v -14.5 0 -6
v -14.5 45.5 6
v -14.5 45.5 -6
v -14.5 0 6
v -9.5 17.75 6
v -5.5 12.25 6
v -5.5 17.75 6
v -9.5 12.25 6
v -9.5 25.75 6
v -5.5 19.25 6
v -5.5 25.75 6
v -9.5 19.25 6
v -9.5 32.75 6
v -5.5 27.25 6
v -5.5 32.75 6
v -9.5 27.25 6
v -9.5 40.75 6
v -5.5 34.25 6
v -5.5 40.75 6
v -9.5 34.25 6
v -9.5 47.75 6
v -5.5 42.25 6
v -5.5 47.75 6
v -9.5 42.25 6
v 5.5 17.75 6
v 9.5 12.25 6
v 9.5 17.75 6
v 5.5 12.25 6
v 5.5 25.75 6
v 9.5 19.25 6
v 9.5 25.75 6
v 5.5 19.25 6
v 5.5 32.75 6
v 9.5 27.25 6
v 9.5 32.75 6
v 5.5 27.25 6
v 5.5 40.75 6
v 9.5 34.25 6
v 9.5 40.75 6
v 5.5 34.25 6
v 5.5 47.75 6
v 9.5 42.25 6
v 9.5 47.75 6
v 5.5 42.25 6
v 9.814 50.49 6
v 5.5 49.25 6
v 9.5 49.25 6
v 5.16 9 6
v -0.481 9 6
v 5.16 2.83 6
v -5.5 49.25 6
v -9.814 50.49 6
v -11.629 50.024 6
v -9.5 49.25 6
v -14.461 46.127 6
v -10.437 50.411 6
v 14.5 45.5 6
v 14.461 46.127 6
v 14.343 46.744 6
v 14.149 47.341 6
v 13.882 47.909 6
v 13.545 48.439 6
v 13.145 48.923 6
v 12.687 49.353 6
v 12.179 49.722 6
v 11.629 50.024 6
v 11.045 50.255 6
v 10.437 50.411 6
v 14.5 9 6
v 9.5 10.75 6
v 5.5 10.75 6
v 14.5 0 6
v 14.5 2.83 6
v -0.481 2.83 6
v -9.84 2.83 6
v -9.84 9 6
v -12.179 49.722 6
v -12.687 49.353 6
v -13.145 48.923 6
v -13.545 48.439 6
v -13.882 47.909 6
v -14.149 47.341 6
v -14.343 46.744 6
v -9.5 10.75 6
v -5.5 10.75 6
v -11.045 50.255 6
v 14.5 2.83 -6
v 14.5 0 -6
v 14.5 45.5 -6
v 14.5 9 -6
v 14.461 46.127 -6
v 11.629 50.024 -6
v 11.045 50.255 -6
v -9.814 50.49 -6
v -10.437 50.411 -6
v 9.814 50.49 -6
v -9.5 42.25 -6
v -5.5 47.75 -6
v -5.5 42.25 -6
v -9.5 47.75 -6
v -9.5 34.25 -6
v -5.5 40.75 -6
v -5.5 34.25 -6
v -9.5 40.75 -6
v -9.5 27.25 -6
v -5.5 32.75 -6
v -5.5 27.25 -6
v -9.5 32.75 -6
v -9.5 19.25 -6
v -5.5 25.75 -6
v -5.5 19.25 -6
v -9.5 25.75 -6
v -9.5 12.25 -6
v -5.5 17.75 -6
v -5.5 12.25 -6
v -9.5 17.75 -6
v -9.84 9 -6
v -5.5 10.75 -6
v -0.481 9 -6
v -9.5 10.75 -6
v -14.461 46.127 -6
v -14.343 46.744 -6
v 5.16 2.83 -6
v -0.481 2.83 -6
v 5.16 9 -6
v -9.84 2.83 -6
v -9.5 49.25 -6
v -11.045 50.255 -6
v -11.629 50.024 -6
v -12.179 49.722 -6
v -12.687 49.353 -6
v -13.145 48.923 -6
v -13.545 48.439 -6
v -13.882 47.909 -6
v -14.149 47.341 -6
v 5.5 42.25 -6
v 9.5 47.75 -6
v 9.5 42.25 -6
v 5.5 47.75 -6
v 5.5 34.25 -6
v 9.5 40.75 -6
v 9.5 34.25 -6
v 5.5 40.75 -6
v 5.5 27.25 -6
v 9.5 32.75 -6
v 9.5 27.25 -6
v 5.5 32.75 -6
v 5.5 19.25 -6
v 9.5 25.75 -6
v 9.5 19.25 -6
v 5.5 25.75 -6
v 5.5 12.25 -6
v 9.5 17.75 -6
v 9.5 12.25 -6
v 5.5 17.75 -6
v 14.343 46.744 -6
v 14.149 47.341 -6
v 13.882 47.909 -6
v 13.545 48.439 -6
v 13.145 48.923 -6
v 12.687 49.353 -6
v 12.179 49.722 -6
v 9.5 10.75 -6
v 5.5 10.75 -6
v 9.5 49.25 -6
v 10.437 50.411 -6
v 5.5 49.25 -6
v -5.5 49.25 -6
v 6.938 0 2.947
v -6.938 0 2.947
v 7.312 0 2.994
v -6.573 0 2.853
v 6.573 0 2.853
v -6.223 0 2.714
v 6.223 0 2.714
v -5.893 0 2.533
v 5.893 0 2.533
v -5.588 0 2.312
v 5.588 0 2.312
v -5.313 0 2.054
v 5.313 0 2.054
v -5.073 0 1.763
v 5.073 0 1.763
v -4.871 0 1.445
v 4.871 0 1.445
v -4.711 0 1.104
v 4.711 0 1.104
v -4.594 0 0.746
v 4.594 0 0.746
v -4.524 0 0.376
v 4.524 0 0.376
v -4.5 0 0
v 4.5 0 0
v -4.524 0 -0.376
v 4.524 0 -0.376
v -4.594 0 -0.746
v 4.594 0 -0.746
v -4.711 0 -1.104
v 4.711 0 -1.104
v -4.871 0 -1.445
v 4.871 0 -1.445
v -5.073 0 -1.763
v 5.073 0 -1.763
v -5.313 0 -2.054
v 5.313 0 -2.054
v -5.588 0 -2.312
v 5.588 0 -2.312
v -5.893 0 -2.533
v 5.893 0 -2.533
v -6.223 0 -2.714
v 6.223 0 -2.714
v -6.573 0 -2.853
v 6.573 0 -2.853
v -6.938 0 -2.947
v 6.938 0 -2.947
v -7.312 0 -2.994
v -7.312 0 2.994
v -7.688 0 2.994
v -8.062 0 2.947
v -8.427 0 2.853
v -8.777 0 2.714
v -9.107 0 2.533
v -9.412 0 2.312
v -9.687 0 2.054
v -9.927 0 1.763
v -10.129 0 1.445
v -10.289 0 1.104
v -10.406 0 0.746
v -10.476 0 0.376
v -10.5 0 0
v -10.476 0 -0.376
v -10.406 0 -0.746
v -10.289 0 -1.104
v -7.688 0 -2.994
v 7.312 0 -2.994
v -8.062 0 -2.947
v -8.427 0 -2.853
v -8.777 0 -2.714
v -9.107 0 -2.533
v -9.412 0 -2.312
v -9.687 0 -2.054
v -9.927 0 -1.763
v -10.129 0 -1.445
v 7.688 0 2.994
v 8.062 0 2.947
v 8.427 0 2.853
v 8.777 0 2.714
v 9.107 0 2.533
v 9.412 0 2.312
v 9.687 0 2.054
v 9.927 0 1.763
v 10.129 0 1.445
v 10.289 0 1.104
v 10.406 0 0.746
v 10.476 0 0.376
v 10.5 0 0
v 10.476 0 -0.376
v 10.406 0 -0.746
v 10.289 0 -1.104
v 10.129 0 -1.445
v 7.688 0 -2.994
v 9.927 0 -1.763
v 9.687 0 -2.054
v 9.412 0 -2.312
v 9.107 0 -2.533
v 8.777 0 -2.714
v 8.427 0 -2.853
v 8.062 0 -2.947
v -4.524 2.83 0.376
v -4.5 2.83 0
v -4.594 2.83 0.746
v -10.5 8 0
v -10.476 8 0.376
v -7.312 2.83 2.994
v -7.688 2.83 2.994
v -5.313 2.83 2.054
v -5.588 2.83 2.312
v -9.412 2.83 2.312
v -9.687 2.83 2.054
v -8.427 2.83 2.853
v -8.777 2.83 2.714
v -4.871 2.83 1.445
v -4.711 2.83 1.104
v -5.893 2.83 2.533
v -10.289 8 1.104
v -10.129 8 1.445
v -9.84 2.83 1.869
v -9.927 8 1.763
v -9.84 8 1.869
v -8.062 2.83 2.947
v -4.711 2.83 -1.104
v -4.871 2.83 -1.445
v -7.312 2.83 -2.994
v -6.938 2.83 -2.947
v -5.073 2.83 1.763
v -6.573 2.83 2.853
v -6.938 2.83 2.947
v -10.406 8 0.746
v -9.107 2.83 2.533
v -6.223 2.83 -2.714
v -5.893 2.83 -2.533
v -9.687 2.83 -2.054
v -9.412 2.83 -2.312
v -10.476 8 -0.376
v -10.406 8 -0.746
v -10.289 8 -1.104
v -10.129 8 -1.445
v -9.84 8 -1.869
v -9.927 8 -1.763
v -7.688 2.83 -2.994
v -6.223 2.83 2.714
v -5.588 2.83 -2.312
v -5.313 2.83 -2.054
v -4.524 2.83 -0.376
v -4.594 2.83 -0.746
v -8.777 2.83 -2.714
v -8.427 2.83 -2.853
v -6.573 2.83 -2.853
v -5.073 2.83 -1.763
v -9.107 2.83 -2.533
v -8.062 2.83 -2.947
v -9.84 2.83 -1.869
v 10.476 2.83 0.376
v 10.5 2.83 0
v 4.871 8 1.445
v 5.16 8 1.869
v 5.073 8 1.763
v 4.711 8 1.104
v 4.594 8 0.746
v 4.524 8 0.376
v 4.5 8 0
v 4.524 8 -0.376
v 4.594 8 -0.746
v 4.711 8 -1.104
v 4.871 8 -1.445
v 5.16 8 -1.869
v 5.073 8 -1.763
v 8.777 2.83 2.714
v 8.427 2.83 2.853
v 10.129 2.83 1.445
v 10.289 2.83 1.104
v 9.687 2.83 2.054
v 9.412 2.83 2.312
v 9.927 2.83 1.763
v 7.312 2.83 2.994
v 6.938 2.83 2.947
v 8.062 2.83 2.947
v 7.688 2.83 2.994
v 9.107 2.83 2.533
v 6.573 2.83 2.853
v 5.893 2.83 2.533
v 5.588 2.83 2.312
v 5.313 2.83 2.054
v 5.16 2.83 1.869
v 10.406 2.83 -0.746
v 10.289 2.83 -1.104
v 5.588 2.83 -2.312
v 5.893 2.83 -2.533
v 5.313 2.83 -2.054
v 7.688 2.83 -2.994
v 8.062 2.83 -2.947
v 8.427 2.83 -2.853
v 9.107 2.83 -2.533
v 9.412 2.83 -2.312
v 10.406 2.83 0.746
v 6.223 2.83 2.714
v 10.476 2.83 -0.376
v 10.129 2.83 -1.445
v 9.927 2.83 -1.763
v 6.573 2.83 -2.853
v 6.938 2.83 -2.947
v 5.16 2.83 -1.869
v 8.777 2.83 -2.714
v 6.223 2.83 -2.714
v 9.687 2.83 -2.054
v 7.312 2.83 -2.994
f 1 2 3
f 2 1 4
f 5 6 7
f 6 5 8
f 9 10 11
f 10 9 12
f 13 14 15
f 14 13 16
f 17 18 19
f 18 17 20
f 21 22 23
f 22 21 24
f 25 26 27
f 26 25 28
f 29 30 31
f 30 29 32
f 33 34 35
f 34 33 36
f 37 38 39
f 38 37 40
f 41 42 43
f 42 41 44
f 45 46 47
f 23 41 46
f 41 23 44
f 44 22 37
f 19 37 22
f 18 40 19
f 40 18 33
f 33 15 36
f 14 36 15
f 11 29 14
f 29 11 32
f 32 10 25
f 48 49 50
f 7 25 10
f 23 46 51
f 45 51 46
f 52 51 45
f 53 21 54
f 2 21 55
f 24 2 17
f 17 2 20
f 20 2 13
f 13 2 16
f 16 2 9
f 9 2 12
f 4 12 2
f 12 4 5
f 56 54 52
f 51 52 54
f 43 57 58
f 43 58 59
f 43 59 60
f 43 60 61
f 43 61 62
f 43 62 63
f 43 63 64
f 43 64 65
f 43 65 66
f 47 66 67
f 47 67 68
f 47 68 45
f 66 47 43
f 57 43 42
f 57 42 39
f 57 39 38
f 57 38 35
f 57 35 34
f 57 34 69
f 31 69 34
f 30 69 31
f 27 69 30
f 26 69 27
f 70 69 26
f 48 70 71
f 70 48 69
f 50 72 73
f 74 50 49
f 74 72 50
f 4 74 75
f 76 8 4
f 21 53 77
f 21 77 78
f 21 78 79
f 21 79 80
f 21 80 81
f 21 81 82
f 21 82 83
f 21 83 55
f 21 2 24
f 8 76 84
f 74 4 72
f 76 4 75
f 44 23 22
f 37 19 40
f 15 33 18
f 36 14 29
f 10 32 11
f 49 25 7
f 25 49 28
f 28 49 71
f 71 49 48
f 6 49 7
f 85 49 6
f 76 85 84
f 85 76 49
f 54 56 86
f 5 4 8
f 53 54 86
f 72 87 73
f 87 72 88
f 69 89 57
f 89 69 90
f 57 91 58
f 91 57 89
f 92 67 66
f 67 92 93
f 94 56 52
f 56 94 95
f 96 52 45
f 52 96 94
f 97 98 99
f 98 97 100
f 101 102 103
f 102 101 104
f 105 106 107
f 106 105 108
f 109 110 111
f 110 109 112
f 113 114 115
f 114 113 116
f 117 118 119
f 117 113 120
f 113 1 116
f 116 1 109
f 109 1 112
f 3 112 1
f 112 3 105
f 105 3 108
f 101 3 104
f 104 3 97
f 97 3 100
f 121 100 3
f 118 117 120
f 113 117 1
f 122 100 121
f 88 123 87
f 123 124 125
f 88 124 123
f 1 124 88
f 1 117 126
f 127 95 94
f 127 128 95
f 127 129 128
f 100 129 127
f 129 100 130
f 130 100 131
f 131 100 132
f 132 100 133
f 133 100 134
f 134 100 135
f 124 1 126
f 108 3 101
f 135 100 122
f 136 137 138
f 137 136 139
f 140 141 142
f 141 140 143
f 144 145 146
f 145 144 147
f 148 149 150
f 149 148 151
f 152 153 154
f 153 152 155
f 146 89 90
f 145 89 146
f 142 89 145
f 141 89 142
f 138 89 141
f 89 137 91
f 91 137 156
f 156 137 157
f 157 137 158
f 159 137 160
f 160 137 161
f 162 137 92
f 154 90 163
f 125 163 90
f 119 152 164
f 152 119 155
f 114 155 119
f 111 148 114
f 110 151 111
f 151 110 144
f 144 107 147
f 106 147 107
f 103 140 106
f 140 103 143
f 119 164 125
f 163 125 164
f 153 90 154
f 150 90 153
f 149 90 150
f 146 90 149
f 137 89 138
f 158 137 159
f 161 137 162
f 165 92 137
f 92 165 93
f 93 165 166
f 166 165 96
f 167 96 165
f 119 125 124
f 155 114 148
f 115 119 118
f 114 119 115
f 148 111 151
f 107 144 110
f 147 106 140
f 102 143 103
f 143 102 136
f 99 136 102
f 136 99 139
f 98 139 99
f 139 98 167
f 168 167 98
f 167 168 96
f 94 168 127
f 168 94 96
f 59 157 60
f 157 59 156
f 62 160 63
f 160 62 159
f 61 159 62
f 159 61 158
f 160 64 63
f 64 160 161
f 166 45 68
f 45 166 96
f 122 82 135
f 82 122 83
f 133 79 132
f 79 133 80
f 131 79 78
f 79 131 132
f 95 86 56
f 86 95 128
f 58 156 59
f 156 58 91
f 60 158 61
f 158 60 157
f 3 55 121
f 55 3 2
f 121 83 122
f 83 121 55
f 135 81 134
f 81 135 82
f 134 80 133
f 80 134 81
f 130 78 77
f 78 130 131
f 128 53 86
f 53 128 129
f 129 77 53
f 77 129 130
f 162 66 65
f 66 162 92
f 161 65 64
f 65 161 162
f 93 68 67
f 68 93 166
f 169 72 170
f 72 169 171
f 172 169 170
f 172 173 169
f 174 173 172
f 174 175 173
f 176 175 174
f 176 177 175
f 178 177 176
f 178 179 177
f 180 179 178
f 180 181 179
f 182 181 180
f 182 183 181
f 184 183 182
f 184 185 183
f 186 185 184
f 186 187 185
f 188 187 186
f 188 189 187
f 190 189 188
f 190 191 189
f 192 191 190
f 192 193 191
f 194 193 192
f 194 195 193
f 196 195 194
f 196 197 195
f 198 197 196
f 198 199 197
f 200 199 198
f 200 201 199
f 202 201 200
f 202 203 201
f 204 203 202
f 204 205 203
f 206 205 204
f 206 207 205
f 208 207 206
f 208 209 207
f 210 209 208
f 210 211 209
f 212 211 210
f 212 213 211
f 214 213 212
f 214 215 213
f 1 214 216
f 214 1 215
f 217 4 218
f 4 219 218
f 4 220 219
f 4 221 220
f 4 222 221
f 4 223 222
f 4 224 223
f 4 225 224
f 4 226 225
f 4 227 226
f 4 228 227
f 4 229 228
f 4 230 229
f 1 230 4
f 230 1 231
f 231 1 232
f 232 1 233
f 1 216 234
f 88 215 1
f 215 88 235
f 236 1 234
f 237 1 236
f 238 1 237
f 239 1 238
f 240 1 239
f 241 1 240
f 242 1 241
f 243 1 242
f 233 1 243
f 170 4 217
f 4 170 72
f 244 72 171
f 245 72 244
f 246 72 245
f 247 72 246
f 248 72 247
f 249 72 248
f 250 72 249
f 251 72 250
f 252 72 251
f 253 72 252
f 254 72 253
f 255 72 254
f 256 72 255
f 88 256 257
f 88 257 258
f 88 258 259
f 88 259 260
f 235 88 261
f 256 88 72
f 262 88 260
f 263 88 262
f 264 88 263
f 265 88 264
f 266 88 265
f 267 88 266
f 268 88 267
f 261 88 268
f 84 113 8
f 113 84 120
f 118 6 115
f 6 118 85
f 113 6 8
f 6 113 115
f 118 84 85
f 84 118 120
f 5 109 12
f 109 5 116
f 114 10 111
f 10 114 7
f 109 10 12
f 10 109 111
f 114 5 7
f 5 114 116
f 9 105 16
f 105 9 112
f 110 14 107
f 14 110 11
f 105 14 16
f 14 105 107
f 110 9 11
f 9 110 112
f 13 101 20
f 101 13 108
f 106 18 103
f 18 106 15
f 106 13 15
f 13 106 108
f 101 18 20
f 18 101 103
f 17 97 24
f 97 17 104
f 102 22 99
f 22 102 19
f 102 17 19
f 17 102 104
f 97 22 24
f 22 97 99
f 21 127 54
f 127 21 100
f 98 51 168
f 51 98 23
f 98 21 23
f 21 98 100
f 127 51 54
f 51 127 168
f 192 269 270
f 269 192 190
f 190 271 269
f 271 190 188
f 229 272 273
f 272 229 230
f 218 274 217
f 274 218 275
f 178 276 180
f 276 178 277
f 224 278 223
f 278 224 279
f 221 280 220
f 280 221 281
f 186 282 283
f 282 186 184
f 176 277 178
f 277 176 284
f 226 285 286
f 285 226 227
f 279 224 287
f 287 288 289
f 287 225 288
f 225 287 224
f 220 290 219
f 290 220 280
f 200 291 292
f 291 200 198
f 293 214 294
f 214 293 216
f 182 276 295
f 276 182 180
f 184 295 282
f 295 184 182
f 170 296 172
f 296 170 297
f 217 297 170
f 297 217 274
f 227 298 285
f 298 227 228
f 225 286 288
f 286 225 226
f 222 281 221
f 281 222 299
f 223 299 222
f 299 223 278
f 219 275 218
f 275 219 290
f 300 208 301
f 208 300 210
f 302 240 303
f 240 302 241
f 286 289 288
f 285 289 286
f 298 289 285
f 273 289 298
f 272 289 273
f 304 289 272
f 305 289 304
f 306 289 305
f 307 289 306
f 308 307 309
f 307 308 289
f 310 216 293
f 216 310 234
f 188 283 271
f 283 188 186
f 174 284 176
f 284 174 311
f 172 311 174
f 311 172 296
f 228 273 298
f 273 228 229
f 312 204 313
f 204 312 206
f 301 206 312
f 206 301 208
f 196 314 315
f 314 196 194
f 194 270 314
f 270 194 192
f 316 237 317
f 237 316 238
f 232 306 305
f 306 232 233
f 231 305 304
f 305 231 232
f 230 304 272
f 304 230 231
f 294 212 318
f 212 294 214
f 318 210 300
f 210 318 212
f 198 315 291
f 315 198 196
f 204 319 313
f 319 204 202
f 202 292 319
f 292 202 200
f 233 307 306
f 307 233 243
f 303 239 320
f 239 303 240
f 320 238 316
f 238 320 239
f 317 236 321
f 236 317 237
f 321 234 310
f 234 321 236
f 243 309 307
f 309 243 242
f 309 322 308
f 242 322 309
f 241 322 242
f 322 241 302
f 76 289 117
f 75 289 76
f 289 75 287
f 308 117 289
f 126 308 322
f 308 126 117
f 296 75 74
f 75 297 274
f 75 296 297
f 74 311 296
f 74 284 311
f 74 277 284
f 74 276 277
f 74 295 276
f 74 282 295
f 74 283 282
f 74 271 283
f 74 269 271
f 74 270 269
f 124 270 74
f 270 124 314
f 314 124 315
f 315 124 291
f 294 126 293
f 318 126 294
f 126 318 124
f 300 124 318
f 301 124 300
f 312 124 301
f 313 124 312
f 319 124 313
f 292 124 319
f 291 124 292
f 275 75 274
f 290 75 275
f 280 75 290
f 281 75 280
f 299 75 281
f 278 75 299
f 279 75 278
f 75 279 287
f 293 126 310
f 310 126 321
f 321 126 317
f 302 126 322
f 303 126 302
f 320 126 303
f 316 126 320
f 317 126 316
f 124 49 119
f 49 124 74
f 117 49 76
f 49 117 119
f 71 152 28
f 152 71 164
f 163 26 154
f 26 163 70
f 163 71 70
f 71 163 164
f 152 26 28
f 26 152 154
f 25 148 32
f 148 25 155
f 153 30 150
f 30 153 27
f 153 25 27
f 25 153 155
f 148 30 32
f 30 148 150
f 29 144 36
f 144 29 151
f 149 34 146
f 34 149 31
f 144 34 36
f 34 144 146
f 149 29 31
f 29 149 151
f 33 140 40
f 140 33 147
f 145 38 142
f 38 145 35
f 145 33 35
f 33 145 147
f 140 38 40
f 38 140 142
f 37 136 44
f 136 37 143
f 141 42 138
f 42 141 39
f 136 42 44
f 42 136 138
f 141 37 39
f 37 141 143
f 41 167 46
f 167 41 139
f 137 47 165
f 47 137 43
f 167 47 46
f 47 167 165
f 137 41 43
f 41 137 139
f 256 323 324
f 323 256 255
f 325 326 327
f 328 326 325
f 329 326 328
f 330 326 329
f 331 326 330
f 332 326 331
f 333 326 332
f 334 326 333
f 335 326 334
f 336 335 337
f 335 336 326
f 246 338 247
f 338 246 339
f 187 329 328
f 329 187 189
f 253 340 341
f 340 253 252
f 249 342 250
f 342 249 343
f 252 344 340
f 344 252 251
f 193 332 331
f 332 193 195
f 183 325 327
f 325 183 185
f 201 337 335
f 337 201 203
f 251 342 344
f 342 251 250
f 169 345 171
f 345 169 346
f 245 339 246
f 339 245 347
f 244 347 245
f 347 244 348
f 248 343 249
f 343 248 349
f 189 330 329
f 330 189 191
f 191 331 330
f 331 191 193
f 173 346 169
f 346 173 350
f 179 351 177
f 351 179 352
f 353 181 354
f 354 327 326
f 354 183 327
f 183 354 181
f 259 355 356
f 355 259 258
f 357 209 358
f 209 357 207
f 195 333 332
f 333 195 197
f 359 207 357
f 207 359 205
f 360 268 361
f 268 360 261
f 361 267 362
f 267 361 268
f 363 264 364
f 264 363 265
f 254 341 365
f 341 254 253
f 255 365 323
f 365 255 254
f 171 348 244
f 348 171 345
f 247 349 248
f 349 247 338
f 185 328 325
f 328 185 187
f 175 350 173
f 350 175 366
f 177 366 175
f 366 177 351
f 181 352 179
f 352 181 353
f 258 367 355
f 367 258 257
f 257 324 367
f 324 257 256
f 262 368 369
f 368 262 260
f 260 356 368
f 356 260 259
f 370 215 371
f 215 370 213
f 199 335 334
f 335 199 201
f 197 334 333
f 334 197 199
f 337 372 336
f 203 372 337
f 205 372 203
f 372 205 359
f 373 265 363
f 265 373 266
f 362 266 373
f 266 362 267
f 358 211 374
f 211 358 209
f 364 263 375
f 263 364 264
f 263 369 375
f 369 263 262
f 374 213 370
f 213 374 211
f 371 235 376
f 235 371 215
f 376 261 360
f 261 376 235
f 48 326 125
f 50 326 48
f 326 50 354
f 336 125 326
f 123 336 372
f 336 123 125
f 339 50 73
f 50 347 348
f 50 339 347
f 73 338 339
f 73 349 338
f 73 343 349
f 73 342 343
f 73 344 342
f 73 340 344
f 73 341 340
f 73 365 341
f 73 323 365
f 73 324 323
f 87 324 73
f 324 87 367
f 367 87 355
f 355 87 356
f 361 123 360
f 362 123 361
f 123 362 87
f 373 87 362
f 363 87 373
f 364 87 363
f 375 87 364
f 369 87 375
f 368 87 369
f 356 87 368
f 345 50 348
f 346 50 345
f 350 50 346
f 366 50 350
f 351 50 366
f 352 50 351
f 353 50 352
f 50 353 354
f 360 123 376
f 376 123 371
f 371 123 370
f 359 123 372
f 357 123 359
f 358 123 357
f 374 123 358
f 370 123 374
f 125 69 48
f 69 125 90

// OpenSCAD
$fn = 50;


difference() {
	union() {
		translate(v = [0, 28.5000000000, -6.0000000000]) {
			rotate(a = [0, 0, 0]) {
				hull() {
					translate(v = [-9.5000000000, 17.0000000000, 0]) {
						rotate(a = [0, 0, 0]) {
							translate(v = [0, 0, 0]) {
								rotate(a = [0, 0, 0]) {
									cylinder(h = 12, r = 5);
								}
							}
						}
					}
					translate(v = [9.5000000000, 17.0000000000, 0]) {
						rotate(a = [0, 0, 0]) {
							translate(v = [0, 0, 0]) {
								rotate(a = [0, 0, 0]) {
									cylinder(h = 12, r = 5);
								}
							}
						}
					}
					translate(v = [-9.5000000000, -17.0000000000, 0]) {
						rotate(a = [0, 0, 0]) {
							translate(v = [0, 0, 0]) {
								rotate(a = [0, 0, 0]) {
									cylinder(h = 12, r = 5);
								}
							}
						}
					}
					translate(v = [9.5000000000, -17.0000000000, 0]) {
						rotate(a = [0, 0, 0]) {
							translate(v = [0, 0, 0]) {
								rotate(a = [0, 0, 0]) {
									cylinder(h = 12, r = 5);
								}
							}
						}
					}
				}
			}
		}
		translate(v = [-14.5000000000, 0, -6.0000000000]) {
			rotate(a = [0, 0, 0]) {
				cube(size = [29, 13.5000000000, 12]);
			}
		}
	}
	union() {
		translate(v = [-9.5000000000, 10.7500000000, -50]) {
			rotate(a = [0, 0, 0]) {
				cube(size = [4, 1.5000000000, 100]);
			}
		}
		translate(v = [-9.5000000000, 17.7500000000, -50]) {
			rotate(a = [0, 0, 0]) {
				cube(size = [4, 1.5000000000, 100]);
			}
		}
		translate(v = [-9.5000000000, 25.7500000000, -50]) {
			rotate(a = [0, 0, 0]) {
				cube(size = [4, 1.5000000000, 100]);
			}
		}
		translate(v = [-9.5000000000, 32.7500000000, -50]) {
			rotate(a = [0, 0, 0]) {
				cube(size = [4, 1.5000000000, 100]);
			}
		}
		translate(v = [-9.5000000000, 40.7500000000, -50]) {
			rotate(a = [0, 0, 0]) {
				cube(size = [4, 1.5000000000, 100]);
			}
		}
		translate(v = [-9.5000000000, 47.7500000000, -50]) {
			rotate(a = [0, 0, 0]) {
				cube(size = [4, 1.5000000000, 100]);
			}
		}
		translate(v = [-7.5000000000, 8, 0]) {
			rotate(a = [90, 0, 0]) {
				cylinder(h = 8, r = 3.0000000000);
			}
		}
		translate(v = [-9.8396880416, 9, -25]) {
			rotate(a = [90, 0, 0]) {
				cube(size = [9.3587521664, 100, 6.1700000000]);
			}
		}
		translate(v = [5.5000000000, 10.7500000000, -50]) {
			rotate(a = [0, 0, 0]) {
				cube(size = [4, 1.5000000000, 100]);
			}
		}
		translate(v = [5.5000000000, 17.7500000000, -50]) {
			rotate(a = [0, 0, 0]) {
				cube(size = [4, 1.5000000000, 100]);
			}
		}
		translate(v = [5.5000000000, 25.7500000000, -50]) {
			rotate(a = [0, 0, 0]) {
				cube(size = [4, 1.5000000000, 100]);
			}
		}
		translate(v = [5.5000000000, 32.7500000000, -50]) {
			rotate(a = [0, 0, 0]) {
				cube(size = [4, 1.5000000000, 100]);
			}
		}
		translate(v = [5.5000000000, 40.7500000000, -50]) {
			rotate(a = [0, 0, 0]) {
				cube(size = [4, 1.5000000000, 100]);
			}
		}
		translate(v = [5.5000000000, 47.7500000000, -50]) {
			rotate(a = [0, 0, 0]) {
				cube(size = [4, 1.5000000000, 100]);
			}
		}
		translate(v = [7.5000000000, 8, 0]) {
			rotate(a = [90, 0, 0]) {
				cylinder(h = 8, r = 3.0000000000);
			}
		}
		translate(v = [5.1603119584, 9, -25]) {
			rotate(a = [90, 0, 0]) {
				cube(size = [9.3587521664, 100, 6.1700000000]);
			}
		}
	}
}
